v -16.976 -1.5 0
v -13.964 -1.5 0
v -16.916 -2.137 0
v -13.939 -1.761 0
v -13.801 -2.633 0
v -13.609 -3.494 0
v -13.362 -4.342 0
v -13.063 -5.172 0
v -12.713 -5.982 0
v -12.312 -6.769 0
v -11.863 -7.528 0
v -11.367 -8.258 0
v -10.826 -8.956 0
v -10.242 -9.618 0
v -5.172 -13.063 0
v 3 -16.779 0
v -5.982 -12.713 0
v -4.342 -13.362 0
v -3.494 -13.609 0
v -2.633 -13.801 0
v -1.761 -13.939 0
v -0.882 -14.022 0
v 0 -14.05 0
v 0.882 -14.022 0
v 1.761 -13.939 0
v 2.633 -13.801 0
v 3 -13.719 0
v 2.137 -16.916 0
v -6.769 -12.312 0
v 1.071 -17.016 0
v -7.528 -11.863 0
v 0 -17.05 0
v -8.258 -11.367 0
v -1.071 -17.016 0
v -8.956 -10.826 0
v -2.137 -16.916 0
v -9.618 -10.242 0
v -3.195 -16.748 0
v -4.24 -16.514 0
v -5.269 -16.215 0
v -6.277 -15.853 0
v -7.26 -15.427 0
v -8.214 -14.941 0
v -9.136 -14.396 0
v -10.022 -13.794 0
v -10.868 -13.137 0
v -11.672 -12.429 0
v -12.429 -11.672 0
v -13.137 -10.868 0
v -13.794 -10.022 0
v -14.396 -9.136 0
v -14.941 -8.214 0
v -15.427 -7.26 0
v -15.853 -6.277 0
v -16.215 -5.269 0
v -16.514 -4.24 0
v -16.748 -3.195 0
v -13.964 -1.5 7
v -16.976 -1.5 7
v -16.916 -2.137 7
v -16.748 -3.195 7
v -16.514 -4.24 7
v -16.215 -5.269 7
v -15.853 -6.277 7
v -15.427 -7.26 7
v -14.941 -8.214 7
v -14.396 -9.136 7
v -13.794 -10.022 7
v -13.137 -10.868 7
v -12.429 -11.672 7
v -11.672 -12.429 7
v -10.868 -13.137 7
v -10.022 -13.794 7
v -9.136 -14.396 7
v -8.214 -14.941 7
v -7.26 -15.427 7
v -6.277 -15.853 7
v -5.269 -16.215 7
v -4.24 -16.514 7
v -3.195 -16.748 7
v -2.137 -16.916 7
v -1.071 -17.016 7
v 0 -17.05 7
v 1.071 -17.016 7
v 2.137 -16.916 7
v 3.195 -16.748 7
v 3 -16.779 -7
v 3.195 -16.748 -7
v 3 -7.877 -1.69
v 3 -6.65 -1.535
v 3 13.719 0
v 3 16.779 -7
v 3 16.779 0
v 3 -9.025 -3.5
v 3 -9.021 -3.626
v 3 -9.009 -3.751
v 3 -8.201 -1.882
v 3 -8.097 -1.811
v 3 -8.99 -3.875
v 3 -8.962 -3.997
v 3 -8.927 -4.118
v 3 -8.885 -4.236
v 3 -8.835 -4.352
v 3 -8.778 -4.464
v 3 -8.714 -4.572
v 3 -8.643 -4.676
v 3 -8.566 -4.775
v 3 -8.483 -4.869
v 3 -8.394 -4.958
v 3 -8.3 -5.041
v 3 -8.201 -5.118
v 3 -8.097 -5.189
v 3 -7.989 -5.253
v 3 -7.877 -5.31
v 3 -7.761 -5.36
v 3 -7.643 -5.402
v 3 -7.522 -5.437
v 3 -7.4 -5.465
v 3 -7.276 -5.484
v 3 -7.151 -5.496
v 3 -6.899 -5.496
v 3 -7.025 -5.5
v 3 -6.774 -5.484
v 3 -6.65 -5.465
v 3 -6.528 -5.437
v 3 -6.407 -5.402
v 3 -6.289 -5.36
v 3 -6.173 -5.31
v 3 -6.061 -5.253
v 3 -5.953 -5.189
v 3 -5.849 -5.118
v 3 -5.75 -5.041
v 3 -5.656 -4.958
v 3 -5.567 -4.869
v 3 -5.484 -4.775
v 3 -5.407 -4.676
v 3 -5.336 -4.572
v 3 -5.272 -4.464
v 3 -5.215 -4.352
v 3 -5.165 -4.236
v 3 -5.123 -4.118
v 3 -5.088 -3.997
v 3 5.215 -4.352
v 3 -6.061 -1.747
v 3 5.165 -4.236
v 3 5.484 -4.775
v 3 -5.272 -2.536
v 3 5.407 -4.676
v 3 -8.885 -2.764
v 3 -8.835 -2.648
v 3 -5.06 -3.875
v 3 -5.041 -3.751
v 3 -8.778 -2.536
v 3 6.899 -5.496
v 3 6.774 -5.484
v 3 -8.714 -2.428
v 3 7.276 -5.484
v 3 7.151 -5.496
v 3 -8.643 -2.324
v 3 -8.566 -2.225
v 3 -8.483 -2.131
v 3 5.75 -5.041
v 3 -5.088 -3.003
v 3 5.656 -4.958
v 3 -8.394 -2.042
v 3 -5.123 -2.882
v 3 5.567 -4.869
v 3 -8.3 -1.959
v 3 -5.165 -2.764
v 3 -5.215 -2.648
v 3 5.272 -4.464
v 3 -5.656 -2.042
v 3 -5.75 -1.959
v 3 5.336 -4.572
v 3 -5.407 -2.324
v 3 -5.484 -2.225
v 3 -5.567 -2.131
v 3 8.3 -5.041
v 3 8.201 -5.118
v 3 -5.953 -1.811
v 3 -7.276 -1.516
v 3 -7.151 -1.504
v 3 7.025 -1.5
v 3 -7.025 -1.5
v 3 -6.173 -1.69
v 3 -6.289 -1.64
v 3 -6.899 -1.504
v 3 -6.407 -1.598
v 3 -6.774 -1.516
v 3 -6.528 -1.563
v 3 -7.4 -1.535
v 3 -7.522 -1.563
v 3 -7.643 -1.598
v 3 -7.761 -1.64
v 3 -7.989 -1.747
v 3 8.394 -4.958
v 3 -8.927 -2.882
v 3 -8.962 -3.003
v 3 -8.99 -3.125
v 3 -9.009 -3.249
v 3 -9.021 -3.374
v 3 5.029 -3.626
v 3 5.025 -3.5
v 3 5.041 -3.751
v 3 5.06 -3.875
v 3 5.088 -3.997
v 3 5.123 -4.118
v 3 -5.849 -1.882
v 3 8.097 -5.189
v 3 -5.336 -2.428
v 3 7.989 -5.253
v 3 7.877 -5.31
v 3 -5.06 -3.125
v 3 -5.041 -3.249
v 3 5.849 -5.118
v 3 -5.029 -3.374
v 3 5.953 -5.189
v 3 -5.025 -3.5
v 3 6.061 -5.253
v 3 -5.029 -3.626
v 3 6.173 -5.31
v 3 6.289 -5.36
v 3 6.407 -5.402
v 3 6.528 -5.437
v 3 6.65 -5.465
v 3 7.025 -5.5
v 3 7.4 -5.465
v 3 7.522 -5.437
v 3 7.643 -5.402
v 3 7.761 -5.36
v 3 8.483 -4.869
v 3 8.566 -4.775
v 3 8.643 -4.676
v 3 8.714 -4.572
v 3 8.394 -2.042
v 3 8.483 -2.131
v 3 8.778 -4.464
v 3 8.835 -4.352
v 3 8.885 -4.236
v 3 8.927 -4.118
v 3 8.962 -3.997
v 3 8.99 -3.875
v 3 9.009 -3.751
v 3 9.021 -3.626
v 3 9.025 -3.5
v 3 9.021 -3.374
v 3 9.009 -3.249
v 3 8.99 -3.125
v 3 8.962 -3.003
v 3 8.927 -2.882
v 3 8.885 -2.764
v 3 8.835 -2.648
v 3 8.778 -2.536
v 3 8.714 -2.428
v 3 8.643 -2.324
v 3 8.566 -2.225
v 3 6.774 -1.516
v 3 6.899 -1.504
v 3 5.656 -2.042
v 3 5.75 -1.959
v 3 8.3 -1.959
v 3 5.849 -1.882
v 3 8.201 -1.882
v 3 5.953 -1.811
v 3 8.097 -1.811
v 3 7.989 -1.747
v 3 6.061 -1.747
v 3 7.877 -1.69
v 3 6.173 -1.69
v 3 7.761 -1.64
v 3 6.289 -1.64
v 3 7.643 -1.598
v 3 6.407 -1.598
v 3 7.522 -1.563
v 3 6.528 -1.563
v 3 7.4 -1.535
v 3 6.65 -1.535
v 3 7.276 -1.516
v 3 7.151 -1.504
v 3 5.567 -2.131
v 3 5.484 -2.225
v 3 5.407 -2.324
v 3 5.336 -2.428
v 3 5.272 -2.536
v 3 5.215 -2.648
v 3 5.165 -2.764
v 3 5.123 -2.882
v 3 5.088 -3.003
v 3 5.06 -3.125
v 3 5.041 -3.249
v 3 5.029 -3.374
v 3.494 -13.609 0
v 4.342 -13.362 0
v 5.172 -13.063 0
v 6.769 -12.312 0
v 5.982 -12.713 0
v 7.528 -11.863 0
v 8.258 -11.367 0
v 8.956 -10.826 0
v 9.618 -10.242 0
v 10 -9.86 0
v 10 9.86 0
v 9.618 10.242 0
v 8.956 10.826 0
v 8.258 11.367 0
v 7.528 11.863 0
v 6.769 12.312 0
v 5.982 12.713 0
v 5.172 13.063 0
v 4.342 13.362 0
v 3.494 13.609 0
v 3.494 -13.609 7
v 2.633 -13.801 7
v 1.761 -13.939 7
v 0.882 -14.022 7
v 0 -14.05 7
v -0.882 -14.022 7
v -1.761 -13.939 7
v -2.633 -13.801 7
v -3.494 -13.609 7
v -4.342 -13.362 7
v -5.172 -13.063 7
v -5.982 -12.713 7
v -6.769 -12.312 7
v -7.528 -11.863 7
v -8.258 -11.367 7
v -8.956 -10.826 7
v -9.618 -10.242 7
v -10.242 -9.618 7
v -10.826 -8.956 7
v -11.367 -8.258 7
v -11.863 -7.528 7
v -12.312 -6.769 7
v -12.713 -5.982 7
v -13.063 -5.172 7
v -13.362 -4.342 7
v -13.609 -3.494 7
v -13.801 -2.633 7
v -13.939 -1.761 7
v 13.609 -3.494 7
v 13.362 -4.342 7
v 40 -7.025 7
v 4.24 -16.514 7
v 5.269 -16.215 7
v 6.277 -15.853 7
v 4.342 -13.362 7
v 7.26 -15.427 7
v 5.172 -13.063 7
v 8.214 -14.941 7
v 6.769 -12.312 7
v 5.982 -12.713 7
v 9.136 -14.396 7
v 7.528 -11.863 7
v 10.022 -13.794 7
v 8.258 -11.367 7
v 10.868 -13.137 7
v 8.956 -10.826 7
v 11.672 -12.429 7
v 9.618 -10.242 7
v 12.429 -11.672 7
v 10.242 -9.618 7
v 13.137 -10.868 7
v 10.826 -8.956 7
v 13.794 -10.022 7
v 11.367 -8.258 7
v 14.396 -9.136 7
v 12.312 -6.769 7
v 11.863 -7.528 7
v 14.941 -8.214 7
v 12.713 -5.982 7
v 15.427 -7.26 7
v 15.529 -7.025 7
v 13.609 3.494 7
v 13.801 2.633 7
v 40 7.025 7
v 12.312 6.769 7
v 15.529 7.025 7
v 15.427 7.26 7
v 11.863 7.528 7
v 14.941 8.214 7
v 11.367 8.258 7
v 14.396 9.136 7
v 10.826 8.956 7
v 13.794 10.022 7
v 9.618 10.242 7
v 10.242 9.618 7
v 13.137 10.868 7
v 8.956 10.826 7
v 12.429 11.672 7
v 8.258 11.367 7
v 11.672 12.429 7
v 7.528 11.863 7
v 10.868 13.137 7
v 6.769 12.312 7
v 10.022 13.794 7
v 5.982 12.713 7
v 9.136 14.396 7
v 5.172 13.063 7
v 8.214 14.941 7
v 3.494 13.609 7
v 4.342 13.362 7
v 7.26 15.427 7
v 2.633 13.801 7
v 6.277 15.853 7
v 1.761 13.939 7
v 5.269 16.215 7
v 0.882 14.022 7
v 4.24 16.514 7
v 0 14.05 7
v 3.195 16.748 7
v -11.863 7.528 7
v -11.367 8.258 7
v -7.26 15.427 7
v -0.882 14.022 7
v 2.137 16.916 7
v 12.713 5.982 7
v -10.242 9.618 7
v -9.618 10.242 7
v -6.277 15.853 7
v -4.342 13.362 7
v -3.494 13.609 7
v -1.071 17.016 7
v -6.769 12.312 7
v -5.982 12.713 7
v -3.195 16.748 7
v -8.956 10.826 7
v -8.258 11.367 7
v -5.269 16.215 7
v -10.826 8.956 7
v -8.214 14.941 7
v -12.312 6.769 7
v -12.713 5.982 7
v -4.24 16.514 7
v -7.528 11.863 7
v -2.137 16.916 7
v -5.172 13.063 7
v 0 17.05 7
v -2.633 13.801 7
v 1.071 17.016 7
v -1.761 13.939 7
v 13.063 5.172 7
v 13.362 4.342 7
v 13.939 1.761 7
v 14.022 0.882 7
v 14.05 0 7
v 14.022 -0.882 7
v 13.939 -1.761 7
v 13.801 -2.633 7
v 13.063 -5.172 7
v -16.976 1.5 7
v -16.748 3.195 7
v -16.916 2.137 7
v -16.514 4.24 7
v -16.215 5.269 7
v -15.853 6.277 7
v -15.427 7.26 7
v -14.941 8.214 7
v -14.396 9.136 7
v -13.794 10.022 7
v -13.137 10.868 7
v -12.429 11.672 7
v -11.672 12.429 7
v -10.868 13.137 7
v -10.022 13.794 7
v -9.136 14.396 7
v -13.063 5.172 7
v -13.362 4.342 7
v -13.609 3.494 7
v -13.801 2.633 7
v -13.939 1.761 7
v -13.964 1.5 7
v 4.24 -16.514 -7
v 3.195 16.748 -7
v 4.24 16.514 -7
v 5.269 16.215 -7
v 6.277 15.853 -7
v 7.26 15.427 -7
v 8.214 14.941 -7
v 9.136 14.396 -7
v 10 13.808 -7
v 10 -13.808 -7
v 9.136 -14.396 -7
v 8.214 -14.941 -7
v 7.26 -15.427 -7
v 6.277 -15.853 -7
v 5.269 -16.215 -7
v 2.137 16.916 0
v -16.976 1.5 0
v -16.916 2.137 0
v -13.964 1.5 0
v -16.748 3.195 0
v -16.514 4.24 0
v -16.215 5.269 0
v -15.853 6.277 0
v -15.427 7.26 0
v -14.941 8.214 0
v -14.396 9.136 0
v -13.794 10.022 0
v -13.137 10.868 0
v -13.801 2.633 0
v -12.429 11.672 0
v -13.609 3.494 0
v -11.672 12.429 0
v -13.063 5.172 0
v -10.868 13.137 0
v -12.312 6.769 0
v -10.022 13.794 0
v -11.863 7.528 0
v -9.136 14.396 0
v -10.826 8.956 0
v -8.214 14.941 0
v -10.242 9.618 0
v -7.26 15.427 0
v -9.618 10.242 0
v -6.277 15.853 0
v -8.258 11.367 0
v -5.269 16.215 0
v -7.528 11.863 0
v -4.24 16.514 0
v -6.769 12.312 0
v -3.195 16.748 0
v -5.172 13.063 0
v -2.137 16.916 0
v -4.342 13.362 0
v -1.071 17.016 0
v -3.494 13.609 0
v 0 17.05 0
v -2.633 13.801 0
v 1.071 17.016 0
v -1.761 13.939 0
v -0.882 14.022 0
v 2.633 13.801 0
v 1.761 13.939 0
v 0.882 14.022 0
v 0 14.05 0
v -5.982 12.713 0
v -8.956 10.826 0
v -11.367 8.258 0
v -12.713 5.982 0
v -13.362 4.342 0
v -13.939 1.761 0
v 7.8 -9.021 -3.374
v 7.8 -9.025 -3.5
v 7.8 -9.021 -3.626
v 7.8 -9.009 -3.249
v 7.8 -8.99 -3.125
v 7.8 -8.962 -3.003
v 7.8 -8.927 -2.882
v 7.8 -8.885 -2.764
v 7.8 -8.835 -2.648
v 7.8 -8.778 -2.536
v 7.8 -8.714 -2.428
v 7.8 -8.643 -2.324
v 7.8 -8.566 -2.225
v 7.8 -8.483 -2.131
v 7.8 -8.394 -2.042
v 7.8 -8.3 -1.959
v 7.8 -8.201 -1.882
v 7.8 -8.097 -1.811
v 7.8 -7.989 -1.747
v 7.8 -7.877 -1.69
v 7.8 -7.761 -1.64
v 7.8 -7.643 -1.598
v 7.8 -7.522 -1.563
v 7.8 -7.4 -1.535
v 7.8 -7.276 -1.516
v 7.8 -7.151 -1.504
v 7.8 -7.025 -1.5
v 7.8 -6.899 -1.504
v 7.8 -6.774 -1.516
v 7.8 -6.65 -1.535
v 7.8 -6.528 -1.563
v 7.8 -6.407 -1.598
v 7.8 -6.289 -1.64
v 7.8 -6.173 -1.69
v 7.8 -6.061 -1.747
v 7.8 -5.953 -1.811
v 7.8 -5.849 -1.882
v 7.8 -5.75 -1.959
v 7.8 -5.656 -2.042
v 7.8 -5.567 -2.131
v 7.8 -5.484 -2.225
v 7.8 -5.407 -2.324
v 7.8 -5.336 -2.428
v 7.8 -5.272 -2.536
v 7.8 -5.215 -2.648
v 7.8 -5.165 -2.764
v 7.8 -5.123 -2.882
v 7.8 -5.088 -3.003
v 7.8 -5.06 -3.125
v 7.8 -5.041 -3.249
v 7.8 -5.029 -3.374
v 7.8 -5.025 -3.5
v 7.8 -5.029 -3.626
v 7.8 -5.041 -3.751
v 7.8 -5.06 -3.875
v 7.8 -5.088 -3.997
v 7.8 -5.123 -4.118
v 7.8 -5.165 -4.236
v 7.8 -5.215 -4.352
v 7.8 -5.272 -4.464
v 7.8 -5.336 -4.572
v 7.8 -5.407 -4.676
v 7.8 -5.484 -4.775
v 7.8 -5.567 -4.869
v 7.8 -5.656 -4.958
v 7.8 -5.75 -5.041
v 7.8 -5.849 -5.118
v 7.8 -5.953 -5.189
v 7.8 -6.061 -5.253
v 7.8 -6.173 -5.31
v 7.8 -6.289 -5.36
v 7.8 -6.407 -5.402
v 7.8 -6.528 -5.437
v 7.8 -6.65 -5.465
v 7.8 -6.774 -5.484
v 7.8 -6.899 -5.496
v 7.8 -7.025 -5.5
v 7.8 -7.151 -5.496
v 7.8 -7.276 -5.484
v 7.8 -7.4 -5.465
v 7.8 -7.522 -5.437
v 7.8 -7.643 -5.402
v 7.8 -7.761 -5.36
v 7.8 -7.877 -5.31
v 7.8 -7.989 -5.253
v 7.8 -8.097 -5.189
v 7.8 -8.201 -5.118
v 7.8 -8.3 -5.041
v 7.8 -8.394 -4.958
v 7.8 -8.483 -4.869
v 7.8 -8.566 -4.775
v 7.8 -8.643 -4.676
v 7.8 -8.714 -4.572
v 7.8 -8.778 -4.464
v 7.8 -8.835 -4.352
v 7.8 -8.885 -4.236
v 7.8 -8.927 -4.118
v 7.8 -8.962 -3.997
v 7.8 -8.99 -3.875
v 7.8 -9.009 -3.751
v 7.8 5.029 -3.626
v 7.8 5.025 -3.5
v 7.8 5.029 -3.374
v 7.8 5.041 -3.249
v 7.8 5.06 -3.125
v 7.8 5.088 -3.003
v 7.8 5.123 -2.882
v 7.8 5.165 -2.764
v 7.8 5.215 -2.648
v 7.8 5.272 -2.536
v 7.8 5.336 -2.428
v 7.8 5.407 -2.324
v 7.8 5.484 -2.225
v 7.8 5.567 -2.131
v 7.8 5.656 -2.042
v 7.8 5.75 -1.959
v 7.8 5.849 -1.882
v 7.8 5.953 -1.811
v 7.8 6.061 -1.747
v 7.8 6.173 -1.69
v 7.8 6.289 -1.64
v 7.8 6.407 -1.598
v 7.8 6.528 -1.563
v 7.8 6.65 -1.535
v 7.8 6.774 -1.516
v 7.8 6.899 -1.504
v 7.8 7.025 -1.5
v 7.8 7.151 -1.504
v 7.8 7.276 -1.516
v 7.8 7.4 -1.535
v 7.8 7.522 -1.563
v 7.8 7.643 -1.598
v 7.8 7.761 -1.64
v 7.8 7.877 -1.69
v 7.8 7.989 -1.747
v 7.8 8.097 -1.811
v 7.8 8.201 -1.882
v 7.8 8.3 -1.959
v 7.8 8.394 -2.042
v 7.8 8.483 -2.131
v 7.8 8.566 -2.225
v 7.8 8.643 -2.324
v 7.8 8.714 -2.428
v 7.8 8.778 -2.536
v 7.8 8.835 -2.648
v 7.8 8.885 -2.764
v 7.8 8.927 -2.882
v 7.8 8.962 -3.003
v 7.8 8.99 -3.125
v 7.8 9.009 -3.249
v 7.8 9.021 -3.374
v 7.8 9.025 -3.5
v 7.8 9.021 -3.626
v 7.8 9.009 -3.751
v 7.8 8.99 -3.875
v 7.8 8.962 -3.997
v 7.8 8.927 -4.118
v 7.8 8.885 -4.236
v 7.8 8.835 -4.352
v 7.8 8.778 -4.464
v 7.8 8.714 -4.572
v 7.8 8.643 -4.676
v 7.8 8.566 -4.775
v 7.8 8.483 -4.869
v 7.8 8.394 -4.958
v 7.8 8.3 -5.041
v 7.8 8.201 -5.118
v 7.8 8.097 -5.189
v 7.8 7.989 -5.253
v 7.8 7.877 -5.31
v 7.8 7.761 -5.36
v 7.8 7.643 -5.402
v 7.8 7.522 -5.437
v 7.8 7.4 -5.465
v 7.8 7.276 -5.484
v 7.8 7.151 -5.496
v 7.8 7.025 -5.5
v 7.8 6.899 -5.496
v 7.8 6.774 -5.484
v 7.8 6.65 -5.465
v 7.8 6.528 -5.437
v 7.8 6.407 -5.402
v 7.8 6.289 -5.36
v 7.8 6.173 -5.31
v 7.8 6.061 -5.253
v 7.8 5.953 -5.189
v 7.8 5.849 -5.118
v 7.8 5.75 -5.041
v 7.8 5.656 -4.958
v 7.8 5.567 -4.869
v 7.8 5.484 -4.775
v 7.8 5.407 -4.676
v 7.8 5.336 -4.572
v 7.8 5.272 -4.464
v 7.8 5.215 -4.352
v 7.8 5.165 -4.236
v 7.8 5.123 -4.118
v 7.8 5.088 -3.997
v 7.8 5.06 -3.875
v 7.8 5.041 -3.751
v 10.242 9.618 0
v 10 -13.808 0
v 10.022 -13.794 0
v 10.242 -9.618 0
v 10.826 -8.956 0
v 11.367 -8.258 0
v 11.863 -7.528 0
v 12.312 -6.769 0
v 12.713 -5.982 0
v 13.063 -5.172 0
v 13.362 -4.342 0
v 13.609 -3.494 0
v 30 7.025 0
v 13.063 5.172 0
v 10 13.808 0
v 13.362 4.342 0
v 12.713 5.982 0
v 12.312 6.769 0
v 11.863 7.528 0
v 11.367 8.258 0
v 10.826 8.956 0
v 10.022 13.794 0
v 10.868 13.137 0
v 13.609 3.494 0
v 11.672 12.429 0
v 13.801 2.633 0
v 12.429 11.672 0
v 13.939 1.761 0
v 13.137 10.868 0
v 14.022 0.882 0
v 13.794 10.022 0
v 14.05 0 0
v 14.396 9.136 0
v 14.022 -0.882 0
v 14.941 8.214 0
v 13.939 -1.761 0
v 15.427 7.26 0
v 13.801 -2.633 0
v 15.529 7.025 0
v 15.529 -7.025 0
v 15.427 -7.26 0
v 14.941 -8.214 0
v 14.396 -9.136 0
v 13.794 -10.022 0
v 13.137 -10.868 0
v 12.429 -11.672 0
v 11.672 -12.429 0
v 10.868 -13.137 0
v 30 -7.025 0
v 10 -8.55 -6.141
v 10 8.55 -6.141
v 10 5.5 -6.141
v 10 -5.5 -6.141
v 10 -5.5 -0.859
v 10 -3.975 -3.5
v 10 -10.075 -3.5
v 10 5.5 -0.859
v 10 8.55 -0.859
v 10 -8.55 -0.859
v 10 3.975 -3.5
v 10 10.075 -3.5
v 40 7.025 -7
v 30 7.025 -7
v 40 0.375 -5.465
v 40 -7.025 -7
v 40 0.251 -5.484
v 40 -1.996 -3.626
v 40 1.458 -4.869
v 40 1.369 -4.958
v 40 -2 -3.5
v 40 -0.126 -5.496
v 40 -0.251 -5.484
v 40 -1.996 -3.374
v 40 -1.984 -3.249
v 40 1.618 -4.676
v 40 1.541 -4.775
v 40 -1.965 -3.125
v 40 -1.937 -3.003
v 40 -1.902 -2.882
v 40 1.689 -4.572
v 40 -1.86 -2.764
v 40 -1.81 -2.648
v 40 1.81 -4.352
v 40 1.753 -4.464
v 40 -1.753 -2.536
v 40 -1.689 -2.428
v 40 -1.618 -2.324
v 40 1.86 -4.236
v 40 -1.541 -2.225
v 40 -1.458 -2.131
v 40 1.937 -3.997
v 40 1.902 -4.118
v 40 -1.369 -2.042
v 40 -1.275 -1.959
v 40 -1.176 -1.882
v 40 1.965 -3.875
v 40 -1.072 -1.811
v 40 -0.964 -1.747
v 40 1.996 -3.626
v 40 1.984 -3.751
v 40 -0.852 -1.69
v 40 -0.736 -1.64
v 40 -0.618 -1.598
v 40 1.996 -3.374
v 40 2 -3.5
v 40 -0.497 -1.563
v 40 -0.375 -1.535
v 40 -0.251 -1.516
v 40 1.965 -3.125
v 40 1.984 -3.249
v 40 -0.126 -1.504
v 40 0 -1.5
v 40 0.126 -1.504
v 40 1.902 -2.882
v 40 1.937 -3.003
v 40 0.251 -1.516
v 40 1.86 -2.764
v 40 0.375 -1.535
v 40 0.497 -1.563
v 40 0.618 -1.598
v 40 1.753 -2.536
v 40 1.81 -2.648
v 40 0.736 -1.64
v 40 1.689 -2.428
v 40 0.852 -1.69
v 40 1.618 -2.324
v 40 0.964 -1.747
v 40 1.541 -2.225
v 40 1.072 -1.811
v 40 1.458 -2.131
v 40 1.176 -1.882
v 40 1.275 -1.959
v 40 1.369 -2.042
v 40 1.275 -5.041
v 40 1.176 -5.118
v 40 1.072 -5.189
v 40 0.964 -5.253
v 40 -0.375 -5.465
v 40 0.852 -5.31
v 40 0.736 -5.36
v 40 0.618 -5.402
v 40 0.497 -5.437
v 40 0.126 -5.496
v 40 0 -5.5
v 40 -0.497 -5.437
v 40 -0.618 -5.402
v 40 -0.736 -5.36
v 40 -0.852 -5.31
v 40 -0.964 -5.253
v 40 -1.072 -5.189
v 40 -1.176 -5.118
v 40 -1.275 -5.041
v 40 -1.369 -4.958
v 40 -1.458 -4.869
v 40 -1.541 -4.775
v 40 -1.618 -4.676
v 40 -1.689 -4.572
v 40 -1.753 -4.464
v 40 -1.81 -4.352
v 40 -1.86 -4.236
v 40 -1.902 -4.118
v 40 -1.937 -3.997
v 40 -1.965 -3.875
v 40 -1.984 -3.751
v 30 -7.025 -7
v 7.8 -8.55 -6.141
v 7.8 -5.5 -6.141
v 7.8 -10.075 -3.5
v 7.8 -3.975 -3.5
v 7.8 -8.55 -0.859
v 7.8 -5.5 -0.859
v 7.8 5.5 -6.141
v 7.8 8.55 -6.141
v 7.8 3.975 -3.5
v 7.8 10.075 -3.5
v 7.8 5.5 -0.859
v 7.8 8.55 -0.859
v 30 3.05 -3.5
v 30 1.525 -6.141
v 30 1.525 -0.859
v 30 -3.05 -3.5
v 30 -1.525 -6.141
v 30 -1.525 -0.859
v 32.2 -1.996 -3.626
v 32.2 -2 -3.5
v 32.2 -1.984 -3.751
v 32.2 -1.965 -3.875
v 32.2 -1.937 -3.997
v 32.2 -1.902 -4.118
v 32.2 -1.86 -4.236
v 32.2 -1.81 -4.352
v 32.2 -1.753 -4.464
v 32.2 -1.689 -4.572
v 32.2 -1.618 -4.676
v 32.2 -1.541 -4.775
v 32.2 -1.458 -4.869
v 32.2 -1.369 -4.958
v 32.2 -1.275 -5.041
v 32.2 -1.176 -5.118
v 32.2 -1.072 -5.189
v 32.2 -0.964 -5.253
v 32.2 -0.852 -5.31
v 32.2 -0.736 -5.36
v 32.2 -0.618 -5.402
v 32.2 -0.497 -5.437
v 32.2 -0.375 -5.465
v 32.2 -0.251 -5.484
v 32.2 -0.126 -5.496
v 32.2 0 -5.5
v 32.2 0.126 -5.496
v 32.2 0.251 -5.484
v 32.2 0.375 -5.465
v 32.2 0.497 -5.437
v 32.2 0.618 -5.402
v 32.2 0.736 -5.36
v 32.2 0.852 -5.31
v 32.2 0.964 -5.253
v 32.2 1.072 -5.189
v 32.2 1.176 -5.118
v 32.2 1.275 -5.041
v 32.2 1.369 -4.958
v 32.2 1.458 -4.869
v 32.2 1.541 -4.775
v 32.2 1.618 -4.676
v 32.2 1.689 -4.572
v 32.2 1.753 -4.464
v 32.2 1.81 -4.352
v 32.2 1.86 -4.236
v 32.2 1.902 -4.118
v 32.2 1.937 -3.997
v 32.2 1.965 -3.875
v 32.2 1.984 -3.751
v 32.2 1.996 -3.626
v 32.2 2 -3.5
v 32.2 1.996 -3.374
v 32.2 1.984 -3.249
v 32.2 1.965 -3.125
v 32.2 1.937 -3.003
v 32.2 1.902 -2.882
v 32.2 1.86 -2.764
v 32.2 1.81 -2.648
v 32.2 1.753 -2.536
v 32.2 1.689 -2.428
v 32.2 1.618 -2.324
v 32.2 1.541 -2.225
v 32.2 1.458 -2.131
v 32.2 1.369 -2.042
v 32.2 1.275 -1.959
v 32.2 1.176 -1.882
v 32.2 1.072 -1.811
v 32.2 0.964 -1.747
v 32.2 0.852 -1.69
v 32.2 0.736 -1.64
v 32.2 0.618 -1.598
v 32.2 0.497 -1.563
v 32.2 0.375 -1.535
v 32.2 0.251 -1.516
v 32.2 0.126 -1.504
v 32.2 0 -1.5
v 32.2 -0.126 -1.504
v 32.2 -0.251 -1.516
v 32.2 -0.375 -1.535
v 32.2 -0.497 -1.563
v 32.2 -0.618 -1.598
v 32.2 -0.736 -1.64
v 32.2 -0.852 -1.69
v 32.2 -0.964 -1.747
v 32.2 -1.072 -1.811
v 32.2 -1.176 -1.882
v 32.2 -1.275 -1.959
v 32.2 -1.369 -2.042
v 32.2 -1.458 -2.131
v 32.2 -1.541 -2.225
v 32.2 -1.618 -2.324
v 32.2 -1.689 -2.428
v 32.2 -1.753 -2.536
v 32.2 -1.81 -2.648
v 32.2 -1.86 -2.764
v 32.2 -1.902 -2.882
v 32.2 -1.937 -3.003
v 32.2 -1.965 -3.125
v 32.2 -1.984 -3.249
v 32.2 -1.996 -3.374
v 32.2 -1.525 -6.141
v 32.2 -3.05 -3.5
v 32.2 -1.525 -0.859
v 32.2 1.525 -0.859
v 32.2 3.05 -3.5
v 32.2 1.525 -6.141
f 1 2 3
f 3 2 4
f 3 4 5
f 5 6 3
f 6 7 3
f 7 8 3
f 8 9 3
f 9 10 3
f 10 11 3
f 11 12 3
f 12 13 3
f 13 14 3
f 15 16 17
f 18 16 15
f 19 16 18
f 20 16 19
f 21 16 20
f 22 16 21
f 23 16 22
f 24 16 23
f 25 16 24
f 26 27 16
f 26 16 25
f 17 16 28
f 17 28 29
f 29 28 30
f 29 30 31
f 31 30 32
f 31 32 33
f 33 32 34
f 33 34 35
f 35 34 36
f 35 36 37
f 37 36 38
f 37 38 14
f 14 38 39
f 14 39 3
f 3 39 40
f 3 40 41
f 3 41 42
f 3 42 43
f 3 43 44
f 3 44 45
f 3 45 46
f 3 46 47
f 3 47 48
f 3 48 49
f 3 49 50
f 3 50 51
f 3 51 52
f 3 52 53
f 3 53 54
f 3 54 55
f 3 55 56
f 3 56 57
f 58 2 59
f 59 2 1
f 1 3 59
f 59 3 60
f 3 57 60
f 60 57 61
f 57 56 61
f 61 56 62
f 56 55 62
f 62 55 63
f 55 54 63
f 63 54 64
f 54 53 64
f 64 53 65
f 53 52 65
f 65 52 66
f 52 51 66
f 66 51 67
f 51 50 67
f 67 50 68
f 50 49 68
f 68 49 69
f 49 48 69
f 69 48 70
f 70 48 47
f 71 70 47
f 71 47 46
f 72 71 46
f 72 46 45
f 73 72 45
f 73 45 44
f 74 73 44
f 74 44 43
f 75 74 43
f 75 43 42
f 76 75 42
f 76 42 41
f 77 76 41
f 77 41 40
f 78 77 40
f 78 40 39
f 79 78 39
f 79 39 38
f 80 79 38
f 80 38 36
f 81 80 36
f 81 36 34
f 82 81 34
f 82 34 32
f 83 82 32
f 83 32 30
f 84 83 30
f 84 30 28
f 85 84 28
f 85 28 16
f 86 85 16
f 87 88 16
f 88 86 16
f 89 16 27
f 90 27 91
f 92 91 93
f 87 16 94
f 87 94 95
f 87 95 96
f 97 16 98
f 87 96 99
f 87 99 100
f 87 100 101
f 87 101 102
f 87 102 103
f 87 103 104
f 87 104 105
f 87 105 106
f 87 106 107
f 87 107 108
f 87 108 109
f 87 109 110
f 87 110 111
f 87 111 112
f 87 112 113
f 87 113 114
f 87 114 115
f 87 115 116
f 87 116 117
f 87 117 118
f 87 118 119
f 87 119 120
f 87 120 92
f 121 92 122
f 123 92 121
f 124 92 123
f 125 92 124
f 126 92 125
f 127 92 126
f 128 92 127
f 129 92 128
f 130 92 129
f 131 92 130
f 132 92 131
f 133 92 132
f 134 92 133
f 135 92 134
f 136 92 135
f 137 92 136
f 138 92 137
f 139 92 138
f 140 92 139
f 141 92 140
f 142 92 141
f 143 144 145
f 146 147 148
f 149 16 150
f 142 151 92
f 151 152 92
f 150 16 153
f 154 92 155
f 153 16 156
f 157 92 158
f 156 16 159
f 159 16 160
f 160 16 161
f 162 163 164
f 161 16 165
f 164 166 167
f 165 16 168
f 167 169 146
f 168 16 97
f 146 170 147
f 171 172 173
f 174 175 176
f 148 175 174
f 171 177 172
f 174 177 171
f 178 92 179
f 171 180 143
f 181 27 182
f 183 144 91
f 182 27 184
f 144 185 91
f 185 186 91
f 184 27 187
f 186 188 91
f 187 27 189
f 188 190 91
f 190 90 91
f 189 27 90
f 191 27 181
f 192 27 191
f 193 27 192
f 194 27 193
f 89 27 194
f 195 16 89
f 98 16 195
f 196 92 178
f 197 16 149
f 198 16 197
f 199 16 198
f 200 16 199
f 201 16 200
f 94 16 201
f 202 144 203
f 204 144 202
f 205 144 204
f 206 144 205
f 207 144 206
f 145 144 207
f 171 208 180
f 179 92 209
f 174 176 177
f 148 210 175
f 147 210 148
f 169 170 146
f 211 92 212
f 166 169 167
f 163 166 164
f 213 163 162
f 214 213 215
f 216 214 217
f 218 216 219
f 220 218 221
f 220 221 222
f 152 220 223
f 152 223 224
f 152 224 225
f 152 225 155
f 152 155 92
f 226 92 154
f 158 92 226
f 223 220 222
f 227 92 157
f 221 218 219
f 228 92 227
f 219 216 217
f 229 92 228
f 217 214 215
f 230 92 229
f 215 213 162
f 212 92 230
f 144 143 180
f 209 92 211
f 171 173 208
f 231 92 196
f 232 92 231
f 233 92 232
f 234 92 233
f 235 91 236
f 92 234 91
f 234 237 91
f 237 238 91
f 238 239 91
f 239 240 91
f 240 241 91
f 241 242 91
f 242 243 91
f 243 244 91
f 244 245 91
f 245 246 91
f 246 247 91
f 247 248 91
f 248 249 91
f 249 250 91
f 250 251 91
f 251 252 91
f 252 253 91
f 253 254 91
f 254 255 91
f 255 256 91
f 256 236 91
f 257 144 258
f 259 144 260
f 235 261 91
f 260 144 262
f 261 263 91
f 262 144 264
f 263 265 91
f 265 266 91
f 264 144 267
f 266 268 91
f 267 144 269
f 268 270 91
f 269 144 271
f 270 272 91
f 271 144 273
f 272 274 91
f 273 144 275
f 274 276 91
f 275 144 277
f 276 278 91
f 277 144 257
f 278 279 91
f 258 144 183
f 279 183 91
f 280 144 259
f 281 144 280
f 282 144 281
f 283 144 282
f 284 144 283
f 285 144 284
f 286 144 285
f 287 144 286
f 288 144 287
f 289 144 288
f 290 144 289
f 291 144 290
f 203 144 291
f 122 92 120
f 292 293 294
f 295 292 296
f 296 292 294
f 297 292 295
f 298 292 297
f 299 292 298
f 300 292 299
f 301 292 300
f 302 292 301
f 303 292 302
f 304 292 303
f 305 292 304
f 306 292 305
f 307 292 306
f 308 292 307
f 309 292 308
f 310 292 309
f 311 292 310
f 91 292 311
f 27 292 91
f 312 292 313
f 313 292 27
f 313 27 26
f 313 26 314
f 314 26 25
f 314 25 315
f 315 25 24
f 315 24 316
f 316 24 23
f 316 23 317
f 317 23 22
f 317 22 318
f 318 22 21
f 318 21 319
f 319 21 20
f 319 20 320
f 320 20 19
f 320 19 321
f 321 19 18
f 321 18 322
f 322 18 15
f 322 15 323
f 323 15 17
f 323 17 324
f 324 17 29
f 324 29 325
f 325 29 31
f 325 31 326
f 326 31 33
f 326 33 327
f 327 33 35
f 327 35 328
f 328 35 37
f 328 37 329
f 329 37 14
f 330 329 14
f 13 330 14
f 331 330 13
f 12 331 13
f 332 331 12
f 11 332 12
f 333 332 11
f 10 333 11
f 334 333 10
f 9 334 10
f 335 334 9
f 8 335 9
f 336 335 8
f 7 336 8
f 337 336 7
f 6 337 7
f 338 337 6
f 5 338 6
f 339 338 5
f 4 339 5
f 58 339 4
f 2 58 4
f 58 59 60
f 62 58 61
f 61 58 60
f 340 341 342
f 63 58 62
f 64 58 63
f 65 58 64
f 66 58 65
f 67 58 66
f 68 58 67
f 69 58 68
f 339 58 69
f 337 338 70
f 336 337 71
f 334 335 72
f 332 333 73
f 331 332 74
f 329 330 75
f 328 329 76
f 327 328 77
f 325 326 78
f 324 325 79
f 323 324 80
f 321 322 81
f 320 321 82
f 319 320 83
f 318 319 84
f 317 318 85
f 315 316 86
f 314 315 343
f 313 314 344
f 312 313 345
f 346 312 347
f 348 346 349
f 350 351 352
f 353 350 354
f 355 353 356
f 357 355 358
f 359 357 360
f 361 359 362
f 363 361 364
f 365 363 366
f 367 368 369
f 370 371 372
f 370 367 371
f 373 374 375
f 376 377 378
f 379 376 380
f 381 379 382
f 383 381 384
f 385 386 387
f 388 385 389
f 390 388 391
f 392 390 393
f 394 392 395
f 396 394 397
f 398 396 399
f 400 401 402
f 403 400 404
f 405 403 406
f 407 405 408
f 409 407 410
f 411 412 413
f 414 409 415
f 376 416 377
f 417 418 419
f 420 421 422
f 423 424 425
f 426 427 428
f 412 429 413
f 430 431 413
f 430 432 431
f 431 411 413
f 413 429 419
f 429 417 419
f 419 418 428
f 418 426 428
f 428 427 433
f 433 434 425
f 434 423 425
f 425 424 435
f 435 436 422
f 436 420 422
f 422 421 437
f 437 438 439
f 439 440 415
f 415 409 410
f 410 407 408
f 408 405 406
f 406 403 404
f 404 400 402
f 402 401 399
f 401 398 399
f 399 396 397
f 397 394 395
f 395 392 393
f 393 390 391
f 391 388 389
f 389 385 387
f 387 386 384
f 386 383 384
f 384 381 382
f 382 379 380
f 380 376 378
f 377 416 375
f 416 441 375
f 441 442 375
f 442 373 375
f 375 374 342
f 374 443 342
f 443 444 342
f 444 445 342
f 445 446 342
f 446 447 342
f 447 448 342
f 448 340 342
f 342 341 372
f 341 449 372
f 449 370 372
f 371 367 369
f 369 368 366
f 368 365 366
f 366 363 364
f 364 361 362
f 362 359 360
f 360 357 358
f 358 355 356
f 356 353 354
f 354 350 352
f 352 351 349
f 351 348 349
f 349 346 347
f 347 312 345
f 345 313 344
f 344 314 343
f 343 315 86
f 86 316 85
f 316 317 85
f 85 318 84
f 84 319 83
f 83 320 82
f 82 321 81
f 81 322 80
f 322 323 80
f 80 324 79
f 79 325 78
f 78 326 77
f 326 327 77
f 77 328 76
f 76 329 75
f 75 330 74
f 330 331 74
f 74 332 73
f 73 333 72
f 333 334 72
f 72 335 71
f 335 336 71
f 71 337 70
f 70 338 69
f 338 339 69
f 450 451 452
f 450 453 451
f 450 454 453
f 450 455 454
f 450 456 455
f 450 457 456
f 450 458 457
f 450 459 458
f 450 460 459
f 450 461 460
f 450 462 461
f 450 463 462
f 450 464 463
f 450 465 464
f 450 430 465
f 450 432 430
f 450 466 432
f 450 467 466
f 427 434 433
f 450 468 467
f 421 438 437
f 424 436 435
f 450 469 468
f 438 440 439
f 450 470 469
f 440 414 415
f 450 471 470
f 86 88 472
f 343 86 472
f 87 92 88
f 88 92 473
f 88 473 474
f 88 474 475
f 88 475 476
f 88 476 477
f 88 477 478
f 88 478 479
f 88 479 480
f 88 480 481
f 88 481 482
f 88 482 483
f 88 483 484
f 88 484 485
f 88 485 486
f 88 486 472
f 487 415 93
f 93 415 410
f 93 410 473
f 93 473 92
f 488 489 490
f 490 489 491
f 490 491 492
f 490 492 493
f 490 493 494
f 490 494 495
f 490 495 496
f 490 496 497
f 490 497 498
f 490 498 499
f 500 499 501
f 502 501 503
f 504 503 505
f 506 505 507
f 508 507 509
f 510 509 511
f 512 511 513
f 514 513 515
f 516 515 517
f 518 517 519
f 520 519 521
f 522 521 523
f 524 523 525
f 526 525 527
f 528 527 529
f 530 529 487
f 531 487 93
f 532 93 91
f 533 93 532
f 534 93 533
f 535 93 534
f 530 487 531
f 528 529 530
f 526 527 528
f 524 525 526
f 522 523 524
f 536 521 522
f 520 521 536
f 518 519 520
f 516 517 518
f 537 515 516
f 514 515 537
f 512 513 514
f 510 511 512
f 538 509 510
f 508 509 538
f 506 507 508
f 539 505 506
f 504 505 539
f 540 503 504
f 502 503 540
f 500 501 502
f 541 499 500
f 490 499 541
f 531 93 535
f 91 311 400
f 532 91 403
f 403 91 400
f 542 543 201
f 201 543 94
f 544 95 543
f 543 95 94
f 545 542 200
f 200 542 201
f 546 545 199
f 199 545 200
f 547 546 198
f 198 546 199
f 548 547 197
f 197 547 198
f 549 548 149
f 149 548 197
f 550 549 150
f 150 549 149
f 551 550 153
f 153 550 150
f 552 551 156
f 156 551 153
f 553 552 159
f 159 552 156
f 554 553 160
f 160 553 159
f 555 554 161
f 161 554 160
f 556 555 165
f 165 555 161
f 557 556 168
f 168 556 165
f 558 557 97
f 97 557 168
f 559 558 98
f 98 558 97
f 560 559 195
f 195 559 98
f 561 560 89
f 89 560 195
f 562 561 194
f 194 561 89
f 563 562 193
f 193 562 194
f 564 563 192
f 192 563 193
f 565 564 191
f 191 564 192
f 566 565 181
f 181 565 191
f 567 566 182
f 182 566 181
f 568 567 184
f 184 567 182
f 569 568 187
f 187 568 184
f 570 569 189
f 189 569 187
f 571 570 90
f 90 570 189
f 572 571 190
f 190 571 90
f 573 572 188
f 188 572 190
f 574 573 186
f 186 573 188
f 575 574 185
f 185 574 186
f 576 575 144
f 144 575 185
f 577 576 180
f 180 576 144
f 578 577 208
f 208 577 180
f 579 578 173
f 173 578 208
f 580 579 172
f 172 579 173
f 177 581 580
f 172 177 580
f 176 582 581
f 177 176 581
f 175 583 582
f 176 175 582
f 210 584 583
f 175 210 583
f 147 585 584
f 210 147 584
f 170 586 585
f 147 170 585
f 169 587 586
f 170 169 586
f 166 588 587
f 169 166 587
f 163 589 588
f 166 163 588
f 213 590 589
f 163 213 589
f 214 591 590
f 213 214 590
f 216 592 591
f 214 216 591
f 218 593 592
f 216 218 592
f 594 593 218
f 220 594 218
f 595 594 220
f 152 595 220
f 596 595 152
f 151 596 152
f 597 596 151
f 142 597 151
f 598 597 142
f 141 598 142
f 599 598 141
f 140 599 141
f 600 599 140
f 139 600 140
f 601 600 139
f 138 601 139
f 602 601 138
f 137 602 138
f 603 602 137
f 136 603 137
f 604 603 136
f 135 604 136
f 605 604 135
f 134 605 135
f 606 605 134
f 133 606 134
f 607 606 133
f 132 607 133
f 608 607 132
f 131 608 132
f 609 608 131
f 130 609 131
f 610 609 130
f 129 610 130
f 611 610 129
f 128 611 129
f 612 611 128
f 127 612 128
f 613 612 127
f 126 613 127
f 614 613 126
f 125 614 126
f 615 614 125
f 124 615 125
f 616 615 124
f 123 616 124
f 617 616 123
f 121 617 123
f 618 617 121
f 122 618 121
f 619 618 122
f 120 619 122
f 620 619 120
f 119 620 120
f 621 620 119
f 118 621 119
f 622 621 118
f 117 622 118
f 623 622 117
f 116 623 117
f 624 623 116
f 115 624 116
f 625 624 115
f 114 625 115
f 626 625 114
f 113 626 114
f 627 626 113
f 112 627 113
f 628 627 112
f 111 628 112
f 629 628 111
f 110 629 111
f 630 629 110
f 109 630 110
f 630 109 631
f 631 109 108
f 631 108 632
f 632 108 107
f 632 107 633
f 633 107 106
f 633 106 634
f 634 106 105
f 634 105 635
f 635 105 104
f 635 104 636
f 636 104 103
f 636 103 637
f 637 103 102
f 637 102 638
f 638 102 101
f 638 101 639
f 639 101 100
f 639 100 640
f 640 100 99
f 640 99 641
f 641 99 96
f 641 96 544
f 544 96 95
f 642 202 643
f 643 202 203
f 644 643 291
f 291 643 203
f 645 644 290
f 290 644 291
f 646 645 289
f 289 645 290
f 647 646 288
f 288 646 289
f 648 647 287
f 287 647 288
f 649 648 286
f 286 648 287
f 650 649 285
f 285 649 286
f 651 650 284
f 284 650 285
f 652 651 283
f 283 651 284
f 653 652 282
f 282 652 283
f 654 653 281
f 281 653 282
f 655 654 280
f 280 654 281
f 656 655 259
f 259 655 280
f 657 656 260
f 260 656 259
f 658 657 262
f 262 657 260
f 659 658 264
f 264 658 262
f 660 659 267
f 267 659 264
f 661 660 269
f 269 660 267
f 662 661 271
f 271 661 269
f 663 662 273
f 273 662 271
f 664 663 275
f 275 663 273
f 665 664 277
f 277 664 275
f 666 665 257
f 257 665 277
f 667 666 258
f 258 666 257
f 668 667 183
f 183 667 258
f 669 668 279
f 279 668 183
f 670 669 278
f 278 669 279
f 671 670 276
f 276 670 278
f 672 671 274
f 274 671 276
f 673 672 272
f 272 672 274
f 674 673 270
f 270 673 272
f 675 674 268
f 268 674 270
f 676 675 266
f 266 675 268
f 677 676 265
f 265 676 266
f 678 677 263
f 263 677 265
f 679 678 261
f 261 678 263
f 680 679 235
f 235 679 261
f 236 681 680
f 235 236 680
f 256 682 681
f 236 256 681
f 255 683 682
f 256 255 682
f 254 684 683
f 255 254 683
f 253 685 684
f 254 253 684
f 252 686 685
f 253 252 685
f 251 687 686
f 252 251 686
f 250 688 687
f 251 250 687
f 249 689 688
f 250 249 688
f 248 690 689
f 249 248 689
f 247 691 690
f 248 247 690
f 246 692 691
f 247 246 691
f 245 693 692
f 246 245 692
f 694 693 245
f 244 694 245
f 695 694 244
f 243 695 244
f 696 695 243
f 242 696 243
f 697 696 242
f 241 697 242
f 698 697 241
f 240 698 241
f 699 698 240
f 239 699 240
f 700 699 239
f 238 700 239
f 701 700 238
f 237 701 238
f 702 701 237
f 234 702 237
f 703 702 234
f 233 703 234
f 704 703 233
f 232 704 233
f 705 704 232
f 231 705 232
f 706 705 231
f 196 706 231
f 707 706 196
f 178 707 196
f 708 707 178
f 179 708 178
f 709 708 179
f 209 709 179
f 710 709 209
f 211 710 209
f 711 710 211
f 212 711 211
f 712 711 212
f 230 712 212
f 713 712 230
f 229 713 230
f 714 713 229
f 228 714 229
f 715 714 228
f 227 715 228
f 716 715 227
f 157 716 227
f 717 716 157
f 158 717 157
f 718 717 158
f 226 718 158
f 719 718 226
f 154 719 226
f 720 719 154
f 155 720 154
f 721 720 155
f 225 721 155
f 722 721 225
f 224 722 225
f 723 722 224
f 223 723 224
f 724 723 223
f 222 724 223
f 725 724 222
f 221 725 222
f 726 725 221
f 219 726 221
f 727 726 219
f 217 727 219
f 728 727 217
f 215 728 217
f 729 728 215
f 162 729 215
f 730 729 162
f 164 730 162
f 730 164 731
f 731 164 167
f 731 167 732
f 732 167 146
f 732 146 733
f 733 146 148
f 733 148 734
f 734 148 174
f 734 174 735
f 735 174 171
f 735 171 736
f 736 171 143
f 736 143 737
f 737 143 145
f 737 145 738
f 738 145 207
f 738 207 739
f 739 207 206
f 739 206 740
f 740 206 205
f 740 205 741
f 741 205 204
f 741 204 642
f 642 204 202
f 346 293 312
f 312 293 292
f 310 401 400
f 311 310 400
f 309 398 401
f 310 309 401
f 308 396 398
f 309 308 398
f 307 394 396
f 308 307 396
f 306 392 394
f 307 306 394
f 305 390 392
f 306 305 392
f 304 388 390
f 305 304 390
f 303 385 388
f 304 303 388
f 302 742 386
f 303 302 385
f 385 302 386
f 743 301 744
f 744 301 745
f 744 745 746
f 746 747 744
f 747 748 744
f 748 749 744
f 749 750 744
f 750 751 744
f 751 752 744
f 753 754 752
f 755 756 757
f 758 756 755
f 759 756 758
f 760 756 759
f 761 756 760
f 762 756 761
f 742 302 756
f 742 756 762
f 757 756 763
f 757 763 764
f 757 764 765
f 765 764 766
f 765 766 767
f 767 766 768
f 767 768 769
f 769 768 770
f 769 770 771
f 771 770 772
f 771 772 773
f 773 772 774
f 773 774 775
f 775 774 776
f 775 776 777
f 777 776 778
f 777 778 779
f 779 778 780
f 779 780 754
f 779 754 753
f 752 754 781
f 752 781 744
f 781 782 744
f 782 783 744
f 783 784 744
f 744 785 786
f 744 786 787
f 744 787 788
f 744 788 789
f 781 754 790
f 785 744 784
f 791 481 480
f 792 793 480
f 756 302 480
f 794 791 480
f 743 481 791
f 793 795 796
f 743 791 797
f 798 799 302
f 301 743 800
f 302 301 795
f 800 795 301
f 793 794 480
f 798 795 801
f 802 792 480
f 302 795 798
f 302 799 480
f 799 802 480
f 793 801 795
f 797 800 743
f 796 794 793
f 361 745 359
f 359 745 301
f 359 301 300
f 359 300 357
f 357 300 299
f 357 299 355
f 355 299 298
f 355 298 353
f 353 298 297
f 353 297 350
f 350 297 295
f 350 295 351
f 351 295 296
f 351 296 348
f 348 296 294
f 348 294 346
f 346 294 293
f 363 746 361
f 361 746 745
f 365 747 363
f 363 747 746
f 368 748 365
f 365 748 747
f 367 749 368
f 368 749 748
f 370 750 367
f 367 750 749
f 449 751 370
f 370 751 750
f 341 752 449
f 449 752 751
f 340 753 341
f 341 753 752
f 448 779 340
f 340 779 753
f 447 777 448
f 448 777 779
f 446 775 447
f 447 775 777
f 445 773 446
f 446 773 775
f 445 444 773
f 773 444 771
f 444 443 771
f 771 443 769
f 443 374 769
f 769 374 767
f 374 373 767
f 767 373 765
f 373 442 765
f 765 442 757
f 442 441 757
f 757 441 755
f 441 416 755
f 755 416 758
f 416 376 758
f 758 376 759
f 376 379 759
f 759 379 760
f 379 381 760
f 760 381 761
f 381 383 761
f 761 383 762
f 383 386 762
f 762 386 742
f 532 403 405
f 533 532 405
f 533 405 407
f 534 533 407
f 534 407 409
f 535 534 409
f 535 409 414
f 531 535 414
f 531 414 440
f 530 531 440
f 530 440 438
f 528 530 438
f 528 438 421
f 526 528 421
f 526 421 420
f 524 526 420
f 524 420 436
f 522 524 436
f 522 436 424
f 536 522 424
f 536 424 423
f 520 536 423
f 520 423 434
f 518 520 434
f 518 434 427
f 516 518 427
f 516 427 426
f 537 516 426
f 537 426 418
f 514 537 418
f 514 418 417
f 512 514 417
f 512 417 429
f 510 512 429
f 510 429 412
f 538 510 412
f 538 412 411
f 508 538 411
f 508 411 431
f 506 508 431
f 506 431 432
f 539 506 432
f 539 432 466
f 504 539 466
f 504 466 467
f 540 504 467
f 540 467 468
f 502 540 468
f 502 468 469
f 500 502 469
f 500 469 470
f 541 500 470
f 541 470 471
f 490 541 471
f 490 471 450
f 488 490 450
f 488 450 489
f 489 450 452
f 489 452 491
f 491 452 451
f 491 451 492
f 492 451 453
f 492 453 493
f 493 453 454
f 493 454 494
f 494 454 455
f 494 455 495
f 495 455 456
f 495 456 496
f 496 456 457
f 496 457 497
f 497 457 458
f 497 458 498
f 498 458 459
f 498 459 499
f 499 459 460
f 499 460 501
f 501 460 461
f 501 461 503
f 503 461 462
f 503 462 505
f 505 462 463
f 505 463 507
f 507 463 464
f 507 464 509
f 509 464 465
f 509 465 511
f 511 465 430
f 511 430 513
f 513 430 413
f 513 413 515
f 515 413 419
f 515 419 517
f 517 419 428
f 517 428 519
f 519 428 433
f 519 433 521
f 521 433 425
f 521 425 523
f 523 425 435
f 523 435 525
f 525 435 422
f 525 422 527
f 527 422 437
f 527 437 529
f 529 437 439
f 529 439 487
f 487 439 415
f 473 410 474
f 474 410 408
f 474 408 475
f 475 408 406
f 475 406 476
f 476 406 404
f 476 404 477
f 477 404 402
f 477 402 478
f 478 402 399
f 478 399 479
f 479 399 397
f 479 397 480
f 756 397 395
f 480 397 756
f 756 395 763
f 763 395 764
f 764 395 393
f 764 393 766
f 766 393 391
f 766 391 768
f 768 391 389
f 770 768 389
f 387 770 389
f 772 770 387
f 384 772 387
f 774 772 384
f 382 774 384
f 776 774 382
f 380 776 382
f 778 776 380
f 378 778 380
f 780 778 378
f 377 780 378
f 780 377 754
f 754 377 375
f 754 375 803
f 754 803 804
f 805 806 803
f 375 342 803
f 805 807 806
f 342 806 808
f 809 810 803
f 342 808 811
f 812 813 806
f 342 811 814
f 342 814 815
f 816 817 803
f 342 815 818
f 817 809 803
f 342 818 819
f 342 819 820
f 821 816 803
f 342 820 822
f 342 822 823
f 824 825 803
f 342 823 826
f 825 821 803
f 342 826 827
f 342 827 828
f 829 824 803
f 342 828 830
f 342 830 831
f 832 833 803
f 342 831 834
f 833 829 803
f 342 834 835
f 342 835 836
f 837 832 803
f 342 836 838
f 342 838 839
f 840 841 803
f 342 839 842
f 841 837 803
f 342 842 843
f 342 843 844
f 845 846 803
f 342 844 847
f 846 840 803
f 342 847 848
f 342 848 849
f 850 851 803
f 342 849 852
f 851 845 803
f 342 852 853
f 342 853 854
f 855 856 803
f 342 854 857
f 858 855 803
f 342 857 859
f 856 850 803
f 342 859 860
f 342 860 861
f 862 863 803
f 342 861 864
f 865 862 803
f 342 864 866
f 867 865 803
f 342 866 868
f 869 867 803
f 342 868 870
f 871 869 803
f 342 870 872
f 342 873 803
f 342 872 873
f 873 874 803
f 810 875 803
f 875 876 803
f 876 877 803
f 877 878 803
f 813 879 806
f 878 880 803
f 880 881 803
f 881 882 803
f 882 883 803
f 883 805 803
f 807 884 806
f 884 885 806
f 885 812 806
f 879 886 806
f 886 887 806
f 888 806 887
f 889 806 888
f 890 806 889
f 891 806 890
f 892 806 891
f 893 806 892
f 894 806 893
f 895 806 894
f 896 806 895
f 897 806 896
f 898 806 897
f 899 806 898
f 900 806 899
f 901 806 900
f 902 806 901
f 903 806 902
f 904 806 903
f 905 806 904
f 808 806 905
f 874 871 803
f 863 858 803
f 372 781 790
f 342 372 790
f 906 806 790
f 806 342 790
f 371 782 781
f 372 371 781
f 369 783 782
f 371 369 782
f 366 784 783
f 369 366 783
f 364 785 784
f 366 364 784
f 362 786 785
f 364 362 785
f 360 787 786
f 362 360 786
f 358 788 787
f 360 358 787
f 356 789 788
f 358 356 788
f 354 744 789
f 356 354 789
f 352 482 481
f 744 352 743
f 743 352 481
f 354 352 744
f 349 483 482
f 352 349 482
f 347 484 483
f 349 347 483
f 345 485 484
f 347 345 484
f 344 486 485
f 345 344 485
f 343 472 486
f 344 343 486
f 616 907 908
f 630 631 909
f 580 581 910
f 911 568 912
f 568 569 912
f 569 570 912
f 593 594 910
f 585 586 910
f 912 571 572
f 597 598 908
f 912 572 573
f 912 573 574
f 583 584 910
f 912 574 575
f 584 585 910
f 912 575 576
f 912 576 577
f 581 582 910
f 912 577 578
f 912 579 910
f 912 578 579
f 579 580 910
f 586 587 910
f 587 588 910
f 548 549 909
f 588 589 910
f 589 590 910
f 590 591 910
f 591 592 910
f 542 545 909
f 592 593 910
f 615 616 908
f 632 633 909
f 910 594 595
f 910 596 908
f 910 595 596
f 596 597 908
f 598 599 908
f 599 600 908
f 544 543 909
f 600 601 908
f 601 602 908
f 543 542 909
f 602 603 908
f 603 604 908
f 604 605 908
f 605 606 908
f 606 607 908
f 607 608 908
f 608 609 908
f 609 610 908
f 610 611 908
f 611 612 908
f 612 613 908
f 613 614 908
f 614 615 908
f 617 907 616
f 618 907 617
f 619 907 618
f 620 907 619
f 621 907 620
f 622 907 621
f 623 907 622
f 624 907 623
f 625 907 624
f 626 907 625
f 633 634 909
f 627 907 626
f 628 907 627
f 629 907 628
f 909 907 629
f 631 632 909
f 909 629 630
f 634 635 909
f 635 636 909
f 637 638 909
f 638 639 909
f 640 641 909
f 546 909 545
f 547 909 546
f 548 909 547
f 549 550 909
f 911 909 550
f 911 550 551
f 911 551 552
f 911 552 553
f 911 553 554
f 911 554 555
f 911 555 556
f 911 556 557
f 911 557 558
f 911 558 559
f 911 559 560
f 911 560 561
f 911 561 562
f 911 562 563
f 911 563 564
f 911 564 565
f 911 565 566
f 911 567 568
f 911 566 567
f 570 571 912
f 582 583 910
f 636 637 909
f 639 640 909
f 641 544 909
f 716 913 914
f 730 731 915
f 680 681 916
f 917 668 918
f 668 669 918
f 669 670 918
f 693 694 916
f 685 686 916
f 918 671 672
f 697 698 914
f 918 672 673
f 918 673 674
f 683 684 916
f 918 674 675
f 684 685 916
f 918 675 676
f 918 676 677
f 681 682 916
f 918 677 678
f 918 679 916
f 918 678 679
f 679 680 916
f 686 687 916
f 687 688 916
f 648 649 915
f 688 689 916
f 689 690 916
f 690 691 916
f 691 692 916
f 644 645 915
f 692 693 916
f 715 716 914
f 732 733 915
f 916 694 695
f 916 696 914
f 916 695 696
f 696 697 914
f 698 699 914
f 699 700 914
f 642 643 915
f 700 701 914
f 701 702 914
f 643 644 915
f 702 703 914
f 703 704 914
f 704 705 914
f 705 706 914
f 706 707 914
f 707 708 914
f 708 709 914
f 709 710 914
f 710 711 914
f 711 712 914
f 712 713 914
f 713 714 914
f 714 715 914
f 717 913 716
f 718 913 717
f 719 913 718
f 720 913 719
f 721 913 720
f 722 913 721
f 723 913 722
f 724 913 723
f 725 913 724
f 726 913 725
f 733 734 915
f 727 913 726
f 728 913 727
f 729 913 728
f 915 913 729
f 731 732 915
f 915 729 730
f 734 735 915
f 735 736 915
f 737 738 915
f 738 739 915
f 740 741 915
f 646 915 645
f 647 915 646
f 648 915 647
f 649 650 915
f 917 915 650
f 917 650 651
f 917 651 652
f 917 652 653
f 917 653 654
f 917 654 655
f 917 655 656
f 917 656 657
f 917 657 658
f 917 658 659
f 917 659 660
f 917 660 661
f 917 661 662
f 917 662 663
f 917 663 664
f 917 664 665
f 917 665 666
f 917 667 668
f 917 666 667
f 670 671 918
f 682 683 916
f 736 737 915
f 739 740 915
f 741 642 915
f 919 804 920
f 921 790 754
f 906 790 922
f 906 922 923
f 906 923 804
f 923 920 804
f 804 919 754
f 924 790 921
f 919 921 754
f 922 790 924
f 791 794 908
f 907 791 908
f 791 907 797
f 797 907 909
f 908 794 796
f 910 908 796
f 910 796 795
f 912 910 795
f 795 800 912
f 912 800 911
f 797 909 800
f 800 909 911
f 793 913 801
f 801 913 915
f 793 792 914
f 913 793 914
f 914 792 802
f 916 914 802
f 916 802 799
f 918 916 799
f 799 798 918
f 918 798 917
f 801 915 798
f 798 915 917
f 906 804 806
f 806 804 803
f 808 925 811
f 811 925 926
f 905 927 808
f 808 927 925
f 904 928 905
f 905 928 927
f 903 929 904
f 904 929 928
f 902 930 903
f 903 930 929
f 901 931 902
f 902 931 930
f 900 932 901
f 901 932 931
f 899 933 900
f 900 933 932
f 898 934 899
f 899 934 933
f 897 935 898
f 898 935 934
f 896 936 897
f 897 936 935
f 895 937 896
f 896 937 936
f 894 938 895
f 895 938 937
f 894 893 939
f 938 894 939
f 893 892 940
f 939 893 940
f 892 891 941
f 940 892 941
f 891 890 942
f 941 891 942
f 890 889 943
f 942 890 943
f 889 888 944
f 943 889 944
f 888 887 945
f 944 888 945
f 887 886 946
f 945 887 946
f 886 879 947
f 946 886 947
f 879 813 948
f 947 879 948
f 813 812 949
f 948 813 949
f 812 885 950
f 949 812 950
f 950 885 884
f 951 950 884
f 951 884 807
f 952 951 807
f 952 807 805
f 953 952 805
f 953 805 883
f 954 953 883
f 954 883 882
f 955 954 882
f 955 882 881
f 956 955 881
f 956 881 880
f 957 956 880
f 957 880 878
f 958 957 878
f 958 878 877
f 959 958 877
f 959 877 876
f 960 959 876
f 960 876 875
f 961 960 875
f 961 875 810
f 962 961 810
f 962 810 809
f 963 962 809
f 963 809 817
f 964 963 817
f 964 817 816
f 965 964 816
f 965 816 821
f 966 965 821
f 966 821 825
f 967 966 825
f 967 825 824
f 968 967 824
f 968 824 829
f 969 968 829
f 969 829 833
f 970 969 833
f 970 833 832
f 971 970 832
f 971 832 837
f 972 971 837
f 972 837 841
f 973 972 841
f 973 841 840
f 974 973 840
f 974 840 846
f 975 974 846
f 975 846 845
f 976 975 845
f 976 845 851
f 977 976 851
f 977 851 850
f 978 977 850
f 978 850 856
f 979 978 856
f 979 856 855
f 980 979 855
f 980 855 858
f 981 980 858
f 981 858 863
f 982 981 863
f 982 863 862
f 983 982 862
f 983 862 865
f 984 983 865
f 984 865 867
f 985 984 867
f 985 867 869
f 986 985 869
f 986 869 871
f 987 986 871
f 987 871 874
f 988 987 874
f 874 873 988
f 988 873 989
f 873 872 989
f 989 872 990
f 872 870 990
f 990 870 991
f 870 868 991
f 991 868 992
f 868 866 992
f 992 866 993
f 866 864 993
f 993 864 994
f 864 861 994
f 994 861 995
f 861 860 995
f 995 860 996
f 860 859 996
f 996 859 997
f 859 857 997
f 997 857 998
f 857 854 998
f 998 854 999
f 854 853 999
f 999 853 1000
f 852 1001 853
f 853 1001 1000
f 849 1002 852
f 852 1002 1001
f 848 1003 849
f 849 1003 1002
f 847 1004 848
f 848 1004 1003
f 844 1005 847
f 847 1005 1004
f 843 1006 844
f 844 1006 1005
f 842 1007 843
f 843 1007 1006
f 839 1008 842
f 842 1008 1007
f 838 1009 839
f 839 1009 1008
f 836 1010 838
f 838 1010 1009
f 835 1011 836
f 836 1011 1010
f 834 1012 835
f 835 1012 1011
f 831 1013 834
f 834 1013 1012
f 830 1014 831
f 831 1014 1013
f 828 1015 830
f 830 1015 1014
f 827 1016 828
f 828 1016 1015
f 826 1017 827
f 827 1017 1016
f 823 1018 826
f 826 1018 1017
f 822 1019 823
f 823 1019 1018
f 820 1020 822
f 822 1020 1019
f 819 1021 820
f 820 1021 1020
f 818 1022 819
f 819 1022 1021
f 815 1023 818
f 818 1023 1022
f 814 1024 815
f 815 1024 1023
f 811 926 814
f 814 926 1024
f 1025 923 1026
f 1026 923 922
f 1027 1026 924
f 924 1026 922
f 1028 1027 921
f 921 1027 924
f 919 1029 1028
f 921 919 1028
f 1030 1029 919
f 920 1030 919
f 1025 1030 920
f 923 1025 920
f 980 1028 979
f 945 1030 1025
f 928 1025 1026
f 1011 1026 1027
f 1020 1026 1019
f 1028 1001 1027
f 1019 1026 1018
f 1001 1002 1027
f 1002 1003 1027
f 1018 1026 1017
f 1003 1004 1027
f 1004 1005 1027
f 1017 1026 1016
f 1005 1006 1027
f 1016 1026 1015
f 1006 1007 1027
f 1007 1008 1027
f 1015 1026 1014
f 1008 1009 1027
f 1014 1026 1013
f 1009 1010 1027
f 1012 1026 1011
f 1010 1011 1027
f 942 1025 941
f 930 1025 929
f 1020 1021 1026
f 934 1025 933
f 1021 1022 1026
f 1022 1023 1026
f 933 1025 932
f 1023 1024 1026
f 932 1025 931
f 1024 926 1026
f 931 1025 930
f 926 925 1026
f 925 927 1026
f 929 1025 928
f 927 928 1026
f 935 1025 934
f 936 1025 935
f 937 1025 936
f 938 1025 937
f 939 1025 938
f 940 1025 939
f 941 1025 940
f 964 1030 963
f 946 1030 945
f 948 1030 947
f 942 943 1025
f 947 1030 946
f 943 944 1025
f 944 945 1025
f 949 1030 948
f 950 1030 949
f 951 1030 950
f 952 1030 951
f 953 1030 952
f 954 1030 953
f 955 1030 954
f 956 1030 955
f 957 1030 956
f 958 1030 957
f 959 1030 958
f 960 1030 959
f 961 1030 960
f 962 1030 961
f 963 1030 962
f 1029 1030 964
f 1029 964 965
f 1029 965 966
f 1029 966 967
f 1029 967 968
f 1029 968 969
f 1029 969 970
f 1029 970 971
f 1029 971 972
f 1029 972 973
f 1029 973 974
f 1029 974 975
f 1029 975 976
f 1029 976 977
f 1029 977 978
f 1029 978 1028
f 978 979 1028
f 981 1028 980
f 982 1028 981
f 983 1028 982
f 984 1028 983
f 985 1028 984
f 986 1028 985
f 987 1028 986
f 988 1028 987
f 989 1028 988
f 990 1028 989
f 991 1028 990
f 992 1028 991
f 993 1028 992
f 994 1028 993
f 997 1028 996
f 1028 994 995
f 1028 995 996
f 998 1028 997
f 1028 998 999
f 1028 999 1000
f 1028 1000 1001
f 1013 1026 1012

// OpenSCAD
bearing_radius = 28.1 / 2;
bearing_height = 7;
wall_thickness = 3;

difference(){
	union() {
		// Bearing support wall
		cylinder( r = bearing_radius + wall_thickness, h = bearing_height, $fn = 100 );

		// Outer side fixture support:
		translate( [ 0, -bearing_radius / 2, 0 ] )
			cube( [ 40, bearing_radius, bearing_height ] );
		translate( [ 30, - bearing_radius / 2, - bearing_height ] )
			cube( [ 10, bearing_radius, bearing_height ] );
	}
	// Bearing support hole
	translate( [ 0, 0, -0.1 ] )
		cylinder( r = bearing_radius, h = bearing_height + 0.2, $fn = 100 );

	// Captive nut hole:
	translate( [ 30 - 0.1, 0, -bearing_height / 2 ] )
		rotate( 90, [ 0, 1, 0 ] )
			rotate( 90, [ 0, 0, 1 ] )
				cylinder( h = 2.3, r = 6.1 / 2, $fn=6 );
	// Screw hole:
	translate( [ 30 - 2.2, 0, -bearing_height / 2 ] )
		rotate( 90, [ 0, 1, 0 ] )
			cylinder( h = 31, r = 2, $fn=100 );

	// Groove for easier bearing fit:
	translate( [ -( bearing_radius + wall_thickness ), - wall_thickness / 2, -0.1 ] )
	cube( [ wall_thickness + 0.1, wall_thickness, bearing_height + 0.2 ] );

}
difference(){
	// Inner side fixture support:
	translate( [ 3, - ( bearing_radius + wall_thickness ), - bearing_height ] )
		cube( [ 7, ( bearing_radius + wall_thickness ) * 2, bearing_height ] );

	// Captive nut hole:
	translate( [ 10 - 2.2, - bearing_radius / 2, -bearing_height / 2 ] )
		rotate( 90, [ 0, 1, 0 ] )
			rotate( 90, [ 0, 0, 1 ] )
				cylinder( h = 2.3, r = 6.1 / 2, $fn=6 );

	// Screw hole:
	translate( [ 4 - 2.2, - bearing_radius / 2, -bearing_height / 2 ] )
		rotate( 90, [ 0, 1, 0 ] )
			cylinder( h = 11, r = 2, $fn=100 );

	// Captive nut hole:
	translate( [ 10 - 2.2, + bearing_radius / 2, -bearing_height / 2 ] )
		rotate( 90, [ 0, 1, 0 ] )
			rotate( 90, [ 0, 0, 1 ] )
				cylinder( h = 2.3, r = 6.1 / 2, $fn=6 );

	// Screw hole:
	translate( [ 4 - 2.2, + bearing_radius / 2, -bearing_height / 2 ] )
		rotate( 90, [ 0, 1, 0 ] )
			cylinder( h = 11, r = 2, $fn=100 );

	// Round rough edges:
	translate( [ 0, 0, -30 ] )
		difference(){
			cylinder( h = 30, r = 100, $fn = 100 );
			cylinder( h = 30, r = bearing_radius + wall_thickness, $fn = 100 );
		}
}
